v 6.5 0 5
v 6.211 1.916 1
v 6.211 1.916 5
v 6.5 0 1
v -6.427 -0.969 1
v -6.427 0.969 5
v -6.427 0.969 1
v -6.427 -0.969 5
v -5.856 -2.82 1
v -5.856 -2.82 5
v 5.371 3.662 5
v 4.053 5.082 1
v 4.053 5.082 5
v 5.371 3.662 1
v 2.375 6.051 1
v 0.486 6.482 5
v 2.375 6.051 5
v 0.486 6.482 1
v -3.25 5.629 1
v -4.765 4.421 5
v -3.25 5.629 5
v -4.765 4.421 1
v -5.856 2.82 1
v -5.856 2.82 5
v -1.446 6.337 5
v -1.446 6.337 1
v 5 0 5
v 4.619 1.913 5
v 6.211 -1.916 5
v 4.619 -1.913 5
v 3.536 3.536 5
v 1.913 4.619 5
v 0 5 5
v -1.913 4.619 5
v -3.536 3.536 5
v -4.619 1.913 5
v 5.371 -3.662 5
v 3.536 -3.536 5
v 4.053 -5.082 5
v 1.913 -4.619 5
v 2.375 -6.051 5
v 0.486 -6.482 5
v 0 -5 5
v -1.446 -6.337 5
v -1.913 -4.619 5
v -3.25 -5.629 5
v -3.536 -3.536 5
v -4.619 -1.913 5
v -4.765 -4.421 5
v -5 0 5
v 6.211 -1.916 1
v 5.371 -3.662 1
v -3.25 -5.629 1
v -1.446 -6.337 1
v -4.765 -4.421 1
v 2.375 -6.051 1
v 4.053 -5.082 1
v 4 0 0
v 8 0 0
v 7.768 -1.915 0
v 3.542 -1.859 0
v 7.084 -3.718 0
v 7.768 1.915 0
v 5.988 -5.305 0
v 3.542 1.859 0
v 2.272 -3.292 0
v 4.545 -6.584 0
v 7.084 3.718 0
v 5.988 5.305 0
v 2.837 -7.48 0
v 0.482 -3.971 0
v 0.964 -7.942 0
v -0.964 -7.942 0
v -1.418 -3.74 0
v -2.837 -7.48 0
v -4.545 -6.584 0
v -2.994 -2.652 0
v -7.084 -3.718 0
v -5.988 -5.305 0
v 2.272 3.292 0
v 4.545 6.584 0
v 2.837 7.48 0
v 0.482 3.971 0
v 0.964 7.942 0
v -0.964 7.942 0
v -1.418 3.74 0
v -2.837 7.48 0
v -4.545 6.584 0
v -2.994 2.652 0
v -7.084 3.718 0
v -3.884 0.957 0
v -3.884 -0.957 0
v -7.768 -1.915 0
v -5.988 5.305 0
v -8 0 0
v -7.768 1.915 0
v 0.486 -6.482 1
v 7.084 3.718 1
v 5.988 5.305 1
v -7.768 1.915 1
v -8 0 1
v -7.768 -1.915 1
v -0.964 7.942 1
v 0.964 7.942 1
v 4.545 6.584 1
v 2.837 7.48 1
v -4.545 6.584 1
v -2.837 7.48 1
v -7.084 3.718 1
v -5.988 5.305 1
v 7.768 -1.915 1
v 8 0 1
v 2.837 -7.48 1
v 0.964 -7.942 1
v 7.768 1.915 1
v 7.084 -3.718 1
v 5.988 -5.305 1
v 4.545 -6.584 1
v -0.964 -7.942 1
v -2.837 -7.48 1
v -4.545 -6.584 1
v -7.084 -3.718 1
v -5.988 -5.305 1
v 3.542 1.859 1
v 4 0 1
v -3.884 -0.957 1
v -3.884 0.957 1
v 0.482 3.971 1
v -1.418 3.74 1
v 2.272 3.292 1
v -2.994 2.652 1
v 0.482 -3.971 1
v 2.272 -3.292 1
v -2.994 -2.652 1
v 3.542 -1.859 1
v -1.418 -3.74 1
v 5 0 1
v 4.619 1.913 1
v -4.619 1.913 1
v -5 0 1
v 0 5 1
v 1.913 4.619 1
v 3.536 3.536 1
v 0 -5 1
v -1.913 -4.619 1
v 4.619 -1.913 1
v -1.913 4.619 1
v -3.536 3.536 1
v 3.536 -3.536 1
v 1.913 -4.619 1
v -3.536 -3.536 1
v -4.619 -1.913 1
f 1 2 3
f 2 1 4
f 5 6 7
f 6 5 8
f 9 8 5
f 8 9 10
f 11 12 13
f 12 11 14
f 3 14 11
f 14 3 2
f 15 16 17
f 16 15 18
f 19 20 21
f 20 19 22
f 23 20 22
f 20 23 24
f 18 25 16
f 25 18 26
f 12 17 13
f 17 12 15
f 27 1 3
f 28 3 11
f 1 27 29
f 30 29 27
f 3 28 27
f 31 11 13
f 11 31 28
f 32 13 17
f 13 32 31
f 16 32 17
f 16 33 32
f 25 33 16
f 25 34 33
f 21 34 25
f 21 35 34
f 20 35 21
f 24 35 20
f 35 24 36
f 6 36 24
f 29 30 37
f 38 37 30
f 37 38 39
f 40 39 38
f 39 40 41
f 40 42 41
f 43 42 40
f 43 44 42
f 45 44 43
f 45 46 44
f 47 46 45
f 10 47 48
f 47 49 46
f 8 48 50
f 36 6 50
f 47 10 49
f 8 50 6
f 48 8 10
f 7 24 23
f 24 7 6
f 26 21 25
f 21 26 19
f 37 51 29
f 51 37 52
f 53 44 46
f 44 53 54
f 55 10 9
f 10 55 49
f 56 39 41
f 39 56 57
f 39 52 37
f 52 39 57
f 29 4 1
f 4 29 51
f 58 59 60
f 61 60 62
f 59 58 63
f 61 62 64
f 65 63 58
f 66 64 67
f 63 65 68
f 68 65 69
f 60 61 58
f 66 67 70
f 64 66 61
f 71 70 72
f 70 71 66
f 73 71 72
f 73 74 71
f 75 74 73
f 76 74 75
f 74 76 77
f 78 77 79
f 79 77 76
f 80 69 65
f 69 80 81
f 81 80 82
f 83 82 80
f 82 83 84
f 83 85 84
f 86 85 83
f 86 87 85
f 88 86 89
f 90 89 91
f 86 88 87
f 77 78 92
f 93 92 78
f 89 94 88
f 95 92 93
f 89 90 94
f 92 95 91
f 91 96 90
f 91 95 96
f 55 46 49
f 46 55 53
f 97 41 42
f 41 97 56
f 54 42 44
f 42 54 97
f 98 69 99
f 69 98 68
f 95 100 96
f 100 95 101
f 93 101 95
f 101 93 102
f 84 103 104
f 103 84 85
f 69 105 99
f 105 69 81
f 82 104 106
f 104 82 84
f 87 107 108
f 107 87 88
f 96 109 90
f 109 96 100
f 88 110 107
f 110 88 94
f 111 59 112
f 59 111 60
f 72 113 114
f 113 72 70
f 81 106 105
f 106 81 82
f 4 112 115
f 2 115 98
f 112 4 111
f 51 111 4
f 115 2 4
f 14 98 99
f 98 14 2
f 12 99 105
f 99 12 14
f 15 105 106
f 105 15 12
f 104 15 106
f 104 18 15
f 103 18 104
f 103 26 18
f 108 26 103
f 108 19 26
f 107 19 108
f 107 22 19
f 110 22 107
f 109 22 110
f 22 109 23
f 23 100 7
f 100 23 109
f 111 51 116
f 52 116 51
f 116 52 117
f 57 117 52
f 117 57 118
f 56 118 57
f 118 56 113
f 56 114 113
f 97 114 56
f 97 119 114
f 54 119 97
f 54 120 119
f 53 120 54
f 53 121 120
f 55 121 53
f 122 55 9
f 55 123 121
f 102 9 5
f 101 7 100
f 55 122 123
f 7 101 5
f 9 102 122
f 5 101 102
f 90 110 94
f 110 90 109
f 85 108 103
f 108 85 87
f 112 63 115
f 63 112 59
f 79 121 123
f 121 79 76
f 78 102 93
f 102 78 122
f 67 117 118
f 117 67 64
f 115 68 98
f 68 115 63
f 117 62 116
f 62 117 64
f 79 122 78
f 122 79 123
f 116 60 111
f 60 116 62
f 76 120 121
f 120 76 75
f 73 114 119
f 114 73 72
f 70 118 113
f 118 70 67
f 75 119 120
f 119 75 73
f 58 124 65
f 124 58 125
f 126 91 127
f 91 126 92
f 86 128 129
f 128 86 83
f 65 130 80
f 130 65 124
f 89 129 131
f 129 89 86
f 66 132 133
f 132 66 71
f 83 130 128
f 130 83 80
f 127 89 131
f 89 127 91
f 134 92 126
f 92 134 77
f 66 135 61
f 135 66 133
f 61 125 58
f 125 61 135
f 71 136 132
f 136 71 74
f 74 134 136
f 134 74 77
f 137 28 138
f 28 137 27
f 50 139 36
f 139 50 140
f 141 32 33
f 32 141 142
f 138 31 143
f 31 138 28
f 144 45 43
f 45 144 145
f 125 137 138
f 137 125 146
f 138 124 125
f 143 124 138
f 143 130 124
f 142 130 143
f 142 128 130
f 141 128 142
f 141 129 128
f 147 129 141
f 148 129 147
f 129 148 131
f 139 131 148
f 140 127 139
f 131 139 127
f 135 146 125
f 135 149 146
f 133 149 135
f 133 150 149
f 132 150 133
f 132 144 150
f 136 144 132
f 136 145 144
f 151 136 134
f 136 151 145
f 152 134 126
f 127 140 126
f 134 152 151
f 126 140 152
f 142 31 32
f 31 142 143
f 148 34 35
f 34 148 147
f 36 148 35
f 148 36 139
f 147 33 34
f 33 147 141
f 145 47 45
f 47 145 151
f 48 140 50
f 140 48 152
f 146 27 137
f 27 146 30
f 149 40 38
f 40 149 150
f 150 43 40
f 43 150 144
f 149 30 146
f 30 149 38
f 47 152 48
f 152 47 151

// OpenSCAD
difference(){
union(){cylinder (r1 = 6.5, r2 = 6.5, h= 5);
cylinder (r1 = 8, r2 = 8, h= 1);
}
cylinder (r1 = 4, r2 = 4, h= 5);
translate([0,0,1])cylinder (r1 = 5, r2 = 5, h= 5);
}
